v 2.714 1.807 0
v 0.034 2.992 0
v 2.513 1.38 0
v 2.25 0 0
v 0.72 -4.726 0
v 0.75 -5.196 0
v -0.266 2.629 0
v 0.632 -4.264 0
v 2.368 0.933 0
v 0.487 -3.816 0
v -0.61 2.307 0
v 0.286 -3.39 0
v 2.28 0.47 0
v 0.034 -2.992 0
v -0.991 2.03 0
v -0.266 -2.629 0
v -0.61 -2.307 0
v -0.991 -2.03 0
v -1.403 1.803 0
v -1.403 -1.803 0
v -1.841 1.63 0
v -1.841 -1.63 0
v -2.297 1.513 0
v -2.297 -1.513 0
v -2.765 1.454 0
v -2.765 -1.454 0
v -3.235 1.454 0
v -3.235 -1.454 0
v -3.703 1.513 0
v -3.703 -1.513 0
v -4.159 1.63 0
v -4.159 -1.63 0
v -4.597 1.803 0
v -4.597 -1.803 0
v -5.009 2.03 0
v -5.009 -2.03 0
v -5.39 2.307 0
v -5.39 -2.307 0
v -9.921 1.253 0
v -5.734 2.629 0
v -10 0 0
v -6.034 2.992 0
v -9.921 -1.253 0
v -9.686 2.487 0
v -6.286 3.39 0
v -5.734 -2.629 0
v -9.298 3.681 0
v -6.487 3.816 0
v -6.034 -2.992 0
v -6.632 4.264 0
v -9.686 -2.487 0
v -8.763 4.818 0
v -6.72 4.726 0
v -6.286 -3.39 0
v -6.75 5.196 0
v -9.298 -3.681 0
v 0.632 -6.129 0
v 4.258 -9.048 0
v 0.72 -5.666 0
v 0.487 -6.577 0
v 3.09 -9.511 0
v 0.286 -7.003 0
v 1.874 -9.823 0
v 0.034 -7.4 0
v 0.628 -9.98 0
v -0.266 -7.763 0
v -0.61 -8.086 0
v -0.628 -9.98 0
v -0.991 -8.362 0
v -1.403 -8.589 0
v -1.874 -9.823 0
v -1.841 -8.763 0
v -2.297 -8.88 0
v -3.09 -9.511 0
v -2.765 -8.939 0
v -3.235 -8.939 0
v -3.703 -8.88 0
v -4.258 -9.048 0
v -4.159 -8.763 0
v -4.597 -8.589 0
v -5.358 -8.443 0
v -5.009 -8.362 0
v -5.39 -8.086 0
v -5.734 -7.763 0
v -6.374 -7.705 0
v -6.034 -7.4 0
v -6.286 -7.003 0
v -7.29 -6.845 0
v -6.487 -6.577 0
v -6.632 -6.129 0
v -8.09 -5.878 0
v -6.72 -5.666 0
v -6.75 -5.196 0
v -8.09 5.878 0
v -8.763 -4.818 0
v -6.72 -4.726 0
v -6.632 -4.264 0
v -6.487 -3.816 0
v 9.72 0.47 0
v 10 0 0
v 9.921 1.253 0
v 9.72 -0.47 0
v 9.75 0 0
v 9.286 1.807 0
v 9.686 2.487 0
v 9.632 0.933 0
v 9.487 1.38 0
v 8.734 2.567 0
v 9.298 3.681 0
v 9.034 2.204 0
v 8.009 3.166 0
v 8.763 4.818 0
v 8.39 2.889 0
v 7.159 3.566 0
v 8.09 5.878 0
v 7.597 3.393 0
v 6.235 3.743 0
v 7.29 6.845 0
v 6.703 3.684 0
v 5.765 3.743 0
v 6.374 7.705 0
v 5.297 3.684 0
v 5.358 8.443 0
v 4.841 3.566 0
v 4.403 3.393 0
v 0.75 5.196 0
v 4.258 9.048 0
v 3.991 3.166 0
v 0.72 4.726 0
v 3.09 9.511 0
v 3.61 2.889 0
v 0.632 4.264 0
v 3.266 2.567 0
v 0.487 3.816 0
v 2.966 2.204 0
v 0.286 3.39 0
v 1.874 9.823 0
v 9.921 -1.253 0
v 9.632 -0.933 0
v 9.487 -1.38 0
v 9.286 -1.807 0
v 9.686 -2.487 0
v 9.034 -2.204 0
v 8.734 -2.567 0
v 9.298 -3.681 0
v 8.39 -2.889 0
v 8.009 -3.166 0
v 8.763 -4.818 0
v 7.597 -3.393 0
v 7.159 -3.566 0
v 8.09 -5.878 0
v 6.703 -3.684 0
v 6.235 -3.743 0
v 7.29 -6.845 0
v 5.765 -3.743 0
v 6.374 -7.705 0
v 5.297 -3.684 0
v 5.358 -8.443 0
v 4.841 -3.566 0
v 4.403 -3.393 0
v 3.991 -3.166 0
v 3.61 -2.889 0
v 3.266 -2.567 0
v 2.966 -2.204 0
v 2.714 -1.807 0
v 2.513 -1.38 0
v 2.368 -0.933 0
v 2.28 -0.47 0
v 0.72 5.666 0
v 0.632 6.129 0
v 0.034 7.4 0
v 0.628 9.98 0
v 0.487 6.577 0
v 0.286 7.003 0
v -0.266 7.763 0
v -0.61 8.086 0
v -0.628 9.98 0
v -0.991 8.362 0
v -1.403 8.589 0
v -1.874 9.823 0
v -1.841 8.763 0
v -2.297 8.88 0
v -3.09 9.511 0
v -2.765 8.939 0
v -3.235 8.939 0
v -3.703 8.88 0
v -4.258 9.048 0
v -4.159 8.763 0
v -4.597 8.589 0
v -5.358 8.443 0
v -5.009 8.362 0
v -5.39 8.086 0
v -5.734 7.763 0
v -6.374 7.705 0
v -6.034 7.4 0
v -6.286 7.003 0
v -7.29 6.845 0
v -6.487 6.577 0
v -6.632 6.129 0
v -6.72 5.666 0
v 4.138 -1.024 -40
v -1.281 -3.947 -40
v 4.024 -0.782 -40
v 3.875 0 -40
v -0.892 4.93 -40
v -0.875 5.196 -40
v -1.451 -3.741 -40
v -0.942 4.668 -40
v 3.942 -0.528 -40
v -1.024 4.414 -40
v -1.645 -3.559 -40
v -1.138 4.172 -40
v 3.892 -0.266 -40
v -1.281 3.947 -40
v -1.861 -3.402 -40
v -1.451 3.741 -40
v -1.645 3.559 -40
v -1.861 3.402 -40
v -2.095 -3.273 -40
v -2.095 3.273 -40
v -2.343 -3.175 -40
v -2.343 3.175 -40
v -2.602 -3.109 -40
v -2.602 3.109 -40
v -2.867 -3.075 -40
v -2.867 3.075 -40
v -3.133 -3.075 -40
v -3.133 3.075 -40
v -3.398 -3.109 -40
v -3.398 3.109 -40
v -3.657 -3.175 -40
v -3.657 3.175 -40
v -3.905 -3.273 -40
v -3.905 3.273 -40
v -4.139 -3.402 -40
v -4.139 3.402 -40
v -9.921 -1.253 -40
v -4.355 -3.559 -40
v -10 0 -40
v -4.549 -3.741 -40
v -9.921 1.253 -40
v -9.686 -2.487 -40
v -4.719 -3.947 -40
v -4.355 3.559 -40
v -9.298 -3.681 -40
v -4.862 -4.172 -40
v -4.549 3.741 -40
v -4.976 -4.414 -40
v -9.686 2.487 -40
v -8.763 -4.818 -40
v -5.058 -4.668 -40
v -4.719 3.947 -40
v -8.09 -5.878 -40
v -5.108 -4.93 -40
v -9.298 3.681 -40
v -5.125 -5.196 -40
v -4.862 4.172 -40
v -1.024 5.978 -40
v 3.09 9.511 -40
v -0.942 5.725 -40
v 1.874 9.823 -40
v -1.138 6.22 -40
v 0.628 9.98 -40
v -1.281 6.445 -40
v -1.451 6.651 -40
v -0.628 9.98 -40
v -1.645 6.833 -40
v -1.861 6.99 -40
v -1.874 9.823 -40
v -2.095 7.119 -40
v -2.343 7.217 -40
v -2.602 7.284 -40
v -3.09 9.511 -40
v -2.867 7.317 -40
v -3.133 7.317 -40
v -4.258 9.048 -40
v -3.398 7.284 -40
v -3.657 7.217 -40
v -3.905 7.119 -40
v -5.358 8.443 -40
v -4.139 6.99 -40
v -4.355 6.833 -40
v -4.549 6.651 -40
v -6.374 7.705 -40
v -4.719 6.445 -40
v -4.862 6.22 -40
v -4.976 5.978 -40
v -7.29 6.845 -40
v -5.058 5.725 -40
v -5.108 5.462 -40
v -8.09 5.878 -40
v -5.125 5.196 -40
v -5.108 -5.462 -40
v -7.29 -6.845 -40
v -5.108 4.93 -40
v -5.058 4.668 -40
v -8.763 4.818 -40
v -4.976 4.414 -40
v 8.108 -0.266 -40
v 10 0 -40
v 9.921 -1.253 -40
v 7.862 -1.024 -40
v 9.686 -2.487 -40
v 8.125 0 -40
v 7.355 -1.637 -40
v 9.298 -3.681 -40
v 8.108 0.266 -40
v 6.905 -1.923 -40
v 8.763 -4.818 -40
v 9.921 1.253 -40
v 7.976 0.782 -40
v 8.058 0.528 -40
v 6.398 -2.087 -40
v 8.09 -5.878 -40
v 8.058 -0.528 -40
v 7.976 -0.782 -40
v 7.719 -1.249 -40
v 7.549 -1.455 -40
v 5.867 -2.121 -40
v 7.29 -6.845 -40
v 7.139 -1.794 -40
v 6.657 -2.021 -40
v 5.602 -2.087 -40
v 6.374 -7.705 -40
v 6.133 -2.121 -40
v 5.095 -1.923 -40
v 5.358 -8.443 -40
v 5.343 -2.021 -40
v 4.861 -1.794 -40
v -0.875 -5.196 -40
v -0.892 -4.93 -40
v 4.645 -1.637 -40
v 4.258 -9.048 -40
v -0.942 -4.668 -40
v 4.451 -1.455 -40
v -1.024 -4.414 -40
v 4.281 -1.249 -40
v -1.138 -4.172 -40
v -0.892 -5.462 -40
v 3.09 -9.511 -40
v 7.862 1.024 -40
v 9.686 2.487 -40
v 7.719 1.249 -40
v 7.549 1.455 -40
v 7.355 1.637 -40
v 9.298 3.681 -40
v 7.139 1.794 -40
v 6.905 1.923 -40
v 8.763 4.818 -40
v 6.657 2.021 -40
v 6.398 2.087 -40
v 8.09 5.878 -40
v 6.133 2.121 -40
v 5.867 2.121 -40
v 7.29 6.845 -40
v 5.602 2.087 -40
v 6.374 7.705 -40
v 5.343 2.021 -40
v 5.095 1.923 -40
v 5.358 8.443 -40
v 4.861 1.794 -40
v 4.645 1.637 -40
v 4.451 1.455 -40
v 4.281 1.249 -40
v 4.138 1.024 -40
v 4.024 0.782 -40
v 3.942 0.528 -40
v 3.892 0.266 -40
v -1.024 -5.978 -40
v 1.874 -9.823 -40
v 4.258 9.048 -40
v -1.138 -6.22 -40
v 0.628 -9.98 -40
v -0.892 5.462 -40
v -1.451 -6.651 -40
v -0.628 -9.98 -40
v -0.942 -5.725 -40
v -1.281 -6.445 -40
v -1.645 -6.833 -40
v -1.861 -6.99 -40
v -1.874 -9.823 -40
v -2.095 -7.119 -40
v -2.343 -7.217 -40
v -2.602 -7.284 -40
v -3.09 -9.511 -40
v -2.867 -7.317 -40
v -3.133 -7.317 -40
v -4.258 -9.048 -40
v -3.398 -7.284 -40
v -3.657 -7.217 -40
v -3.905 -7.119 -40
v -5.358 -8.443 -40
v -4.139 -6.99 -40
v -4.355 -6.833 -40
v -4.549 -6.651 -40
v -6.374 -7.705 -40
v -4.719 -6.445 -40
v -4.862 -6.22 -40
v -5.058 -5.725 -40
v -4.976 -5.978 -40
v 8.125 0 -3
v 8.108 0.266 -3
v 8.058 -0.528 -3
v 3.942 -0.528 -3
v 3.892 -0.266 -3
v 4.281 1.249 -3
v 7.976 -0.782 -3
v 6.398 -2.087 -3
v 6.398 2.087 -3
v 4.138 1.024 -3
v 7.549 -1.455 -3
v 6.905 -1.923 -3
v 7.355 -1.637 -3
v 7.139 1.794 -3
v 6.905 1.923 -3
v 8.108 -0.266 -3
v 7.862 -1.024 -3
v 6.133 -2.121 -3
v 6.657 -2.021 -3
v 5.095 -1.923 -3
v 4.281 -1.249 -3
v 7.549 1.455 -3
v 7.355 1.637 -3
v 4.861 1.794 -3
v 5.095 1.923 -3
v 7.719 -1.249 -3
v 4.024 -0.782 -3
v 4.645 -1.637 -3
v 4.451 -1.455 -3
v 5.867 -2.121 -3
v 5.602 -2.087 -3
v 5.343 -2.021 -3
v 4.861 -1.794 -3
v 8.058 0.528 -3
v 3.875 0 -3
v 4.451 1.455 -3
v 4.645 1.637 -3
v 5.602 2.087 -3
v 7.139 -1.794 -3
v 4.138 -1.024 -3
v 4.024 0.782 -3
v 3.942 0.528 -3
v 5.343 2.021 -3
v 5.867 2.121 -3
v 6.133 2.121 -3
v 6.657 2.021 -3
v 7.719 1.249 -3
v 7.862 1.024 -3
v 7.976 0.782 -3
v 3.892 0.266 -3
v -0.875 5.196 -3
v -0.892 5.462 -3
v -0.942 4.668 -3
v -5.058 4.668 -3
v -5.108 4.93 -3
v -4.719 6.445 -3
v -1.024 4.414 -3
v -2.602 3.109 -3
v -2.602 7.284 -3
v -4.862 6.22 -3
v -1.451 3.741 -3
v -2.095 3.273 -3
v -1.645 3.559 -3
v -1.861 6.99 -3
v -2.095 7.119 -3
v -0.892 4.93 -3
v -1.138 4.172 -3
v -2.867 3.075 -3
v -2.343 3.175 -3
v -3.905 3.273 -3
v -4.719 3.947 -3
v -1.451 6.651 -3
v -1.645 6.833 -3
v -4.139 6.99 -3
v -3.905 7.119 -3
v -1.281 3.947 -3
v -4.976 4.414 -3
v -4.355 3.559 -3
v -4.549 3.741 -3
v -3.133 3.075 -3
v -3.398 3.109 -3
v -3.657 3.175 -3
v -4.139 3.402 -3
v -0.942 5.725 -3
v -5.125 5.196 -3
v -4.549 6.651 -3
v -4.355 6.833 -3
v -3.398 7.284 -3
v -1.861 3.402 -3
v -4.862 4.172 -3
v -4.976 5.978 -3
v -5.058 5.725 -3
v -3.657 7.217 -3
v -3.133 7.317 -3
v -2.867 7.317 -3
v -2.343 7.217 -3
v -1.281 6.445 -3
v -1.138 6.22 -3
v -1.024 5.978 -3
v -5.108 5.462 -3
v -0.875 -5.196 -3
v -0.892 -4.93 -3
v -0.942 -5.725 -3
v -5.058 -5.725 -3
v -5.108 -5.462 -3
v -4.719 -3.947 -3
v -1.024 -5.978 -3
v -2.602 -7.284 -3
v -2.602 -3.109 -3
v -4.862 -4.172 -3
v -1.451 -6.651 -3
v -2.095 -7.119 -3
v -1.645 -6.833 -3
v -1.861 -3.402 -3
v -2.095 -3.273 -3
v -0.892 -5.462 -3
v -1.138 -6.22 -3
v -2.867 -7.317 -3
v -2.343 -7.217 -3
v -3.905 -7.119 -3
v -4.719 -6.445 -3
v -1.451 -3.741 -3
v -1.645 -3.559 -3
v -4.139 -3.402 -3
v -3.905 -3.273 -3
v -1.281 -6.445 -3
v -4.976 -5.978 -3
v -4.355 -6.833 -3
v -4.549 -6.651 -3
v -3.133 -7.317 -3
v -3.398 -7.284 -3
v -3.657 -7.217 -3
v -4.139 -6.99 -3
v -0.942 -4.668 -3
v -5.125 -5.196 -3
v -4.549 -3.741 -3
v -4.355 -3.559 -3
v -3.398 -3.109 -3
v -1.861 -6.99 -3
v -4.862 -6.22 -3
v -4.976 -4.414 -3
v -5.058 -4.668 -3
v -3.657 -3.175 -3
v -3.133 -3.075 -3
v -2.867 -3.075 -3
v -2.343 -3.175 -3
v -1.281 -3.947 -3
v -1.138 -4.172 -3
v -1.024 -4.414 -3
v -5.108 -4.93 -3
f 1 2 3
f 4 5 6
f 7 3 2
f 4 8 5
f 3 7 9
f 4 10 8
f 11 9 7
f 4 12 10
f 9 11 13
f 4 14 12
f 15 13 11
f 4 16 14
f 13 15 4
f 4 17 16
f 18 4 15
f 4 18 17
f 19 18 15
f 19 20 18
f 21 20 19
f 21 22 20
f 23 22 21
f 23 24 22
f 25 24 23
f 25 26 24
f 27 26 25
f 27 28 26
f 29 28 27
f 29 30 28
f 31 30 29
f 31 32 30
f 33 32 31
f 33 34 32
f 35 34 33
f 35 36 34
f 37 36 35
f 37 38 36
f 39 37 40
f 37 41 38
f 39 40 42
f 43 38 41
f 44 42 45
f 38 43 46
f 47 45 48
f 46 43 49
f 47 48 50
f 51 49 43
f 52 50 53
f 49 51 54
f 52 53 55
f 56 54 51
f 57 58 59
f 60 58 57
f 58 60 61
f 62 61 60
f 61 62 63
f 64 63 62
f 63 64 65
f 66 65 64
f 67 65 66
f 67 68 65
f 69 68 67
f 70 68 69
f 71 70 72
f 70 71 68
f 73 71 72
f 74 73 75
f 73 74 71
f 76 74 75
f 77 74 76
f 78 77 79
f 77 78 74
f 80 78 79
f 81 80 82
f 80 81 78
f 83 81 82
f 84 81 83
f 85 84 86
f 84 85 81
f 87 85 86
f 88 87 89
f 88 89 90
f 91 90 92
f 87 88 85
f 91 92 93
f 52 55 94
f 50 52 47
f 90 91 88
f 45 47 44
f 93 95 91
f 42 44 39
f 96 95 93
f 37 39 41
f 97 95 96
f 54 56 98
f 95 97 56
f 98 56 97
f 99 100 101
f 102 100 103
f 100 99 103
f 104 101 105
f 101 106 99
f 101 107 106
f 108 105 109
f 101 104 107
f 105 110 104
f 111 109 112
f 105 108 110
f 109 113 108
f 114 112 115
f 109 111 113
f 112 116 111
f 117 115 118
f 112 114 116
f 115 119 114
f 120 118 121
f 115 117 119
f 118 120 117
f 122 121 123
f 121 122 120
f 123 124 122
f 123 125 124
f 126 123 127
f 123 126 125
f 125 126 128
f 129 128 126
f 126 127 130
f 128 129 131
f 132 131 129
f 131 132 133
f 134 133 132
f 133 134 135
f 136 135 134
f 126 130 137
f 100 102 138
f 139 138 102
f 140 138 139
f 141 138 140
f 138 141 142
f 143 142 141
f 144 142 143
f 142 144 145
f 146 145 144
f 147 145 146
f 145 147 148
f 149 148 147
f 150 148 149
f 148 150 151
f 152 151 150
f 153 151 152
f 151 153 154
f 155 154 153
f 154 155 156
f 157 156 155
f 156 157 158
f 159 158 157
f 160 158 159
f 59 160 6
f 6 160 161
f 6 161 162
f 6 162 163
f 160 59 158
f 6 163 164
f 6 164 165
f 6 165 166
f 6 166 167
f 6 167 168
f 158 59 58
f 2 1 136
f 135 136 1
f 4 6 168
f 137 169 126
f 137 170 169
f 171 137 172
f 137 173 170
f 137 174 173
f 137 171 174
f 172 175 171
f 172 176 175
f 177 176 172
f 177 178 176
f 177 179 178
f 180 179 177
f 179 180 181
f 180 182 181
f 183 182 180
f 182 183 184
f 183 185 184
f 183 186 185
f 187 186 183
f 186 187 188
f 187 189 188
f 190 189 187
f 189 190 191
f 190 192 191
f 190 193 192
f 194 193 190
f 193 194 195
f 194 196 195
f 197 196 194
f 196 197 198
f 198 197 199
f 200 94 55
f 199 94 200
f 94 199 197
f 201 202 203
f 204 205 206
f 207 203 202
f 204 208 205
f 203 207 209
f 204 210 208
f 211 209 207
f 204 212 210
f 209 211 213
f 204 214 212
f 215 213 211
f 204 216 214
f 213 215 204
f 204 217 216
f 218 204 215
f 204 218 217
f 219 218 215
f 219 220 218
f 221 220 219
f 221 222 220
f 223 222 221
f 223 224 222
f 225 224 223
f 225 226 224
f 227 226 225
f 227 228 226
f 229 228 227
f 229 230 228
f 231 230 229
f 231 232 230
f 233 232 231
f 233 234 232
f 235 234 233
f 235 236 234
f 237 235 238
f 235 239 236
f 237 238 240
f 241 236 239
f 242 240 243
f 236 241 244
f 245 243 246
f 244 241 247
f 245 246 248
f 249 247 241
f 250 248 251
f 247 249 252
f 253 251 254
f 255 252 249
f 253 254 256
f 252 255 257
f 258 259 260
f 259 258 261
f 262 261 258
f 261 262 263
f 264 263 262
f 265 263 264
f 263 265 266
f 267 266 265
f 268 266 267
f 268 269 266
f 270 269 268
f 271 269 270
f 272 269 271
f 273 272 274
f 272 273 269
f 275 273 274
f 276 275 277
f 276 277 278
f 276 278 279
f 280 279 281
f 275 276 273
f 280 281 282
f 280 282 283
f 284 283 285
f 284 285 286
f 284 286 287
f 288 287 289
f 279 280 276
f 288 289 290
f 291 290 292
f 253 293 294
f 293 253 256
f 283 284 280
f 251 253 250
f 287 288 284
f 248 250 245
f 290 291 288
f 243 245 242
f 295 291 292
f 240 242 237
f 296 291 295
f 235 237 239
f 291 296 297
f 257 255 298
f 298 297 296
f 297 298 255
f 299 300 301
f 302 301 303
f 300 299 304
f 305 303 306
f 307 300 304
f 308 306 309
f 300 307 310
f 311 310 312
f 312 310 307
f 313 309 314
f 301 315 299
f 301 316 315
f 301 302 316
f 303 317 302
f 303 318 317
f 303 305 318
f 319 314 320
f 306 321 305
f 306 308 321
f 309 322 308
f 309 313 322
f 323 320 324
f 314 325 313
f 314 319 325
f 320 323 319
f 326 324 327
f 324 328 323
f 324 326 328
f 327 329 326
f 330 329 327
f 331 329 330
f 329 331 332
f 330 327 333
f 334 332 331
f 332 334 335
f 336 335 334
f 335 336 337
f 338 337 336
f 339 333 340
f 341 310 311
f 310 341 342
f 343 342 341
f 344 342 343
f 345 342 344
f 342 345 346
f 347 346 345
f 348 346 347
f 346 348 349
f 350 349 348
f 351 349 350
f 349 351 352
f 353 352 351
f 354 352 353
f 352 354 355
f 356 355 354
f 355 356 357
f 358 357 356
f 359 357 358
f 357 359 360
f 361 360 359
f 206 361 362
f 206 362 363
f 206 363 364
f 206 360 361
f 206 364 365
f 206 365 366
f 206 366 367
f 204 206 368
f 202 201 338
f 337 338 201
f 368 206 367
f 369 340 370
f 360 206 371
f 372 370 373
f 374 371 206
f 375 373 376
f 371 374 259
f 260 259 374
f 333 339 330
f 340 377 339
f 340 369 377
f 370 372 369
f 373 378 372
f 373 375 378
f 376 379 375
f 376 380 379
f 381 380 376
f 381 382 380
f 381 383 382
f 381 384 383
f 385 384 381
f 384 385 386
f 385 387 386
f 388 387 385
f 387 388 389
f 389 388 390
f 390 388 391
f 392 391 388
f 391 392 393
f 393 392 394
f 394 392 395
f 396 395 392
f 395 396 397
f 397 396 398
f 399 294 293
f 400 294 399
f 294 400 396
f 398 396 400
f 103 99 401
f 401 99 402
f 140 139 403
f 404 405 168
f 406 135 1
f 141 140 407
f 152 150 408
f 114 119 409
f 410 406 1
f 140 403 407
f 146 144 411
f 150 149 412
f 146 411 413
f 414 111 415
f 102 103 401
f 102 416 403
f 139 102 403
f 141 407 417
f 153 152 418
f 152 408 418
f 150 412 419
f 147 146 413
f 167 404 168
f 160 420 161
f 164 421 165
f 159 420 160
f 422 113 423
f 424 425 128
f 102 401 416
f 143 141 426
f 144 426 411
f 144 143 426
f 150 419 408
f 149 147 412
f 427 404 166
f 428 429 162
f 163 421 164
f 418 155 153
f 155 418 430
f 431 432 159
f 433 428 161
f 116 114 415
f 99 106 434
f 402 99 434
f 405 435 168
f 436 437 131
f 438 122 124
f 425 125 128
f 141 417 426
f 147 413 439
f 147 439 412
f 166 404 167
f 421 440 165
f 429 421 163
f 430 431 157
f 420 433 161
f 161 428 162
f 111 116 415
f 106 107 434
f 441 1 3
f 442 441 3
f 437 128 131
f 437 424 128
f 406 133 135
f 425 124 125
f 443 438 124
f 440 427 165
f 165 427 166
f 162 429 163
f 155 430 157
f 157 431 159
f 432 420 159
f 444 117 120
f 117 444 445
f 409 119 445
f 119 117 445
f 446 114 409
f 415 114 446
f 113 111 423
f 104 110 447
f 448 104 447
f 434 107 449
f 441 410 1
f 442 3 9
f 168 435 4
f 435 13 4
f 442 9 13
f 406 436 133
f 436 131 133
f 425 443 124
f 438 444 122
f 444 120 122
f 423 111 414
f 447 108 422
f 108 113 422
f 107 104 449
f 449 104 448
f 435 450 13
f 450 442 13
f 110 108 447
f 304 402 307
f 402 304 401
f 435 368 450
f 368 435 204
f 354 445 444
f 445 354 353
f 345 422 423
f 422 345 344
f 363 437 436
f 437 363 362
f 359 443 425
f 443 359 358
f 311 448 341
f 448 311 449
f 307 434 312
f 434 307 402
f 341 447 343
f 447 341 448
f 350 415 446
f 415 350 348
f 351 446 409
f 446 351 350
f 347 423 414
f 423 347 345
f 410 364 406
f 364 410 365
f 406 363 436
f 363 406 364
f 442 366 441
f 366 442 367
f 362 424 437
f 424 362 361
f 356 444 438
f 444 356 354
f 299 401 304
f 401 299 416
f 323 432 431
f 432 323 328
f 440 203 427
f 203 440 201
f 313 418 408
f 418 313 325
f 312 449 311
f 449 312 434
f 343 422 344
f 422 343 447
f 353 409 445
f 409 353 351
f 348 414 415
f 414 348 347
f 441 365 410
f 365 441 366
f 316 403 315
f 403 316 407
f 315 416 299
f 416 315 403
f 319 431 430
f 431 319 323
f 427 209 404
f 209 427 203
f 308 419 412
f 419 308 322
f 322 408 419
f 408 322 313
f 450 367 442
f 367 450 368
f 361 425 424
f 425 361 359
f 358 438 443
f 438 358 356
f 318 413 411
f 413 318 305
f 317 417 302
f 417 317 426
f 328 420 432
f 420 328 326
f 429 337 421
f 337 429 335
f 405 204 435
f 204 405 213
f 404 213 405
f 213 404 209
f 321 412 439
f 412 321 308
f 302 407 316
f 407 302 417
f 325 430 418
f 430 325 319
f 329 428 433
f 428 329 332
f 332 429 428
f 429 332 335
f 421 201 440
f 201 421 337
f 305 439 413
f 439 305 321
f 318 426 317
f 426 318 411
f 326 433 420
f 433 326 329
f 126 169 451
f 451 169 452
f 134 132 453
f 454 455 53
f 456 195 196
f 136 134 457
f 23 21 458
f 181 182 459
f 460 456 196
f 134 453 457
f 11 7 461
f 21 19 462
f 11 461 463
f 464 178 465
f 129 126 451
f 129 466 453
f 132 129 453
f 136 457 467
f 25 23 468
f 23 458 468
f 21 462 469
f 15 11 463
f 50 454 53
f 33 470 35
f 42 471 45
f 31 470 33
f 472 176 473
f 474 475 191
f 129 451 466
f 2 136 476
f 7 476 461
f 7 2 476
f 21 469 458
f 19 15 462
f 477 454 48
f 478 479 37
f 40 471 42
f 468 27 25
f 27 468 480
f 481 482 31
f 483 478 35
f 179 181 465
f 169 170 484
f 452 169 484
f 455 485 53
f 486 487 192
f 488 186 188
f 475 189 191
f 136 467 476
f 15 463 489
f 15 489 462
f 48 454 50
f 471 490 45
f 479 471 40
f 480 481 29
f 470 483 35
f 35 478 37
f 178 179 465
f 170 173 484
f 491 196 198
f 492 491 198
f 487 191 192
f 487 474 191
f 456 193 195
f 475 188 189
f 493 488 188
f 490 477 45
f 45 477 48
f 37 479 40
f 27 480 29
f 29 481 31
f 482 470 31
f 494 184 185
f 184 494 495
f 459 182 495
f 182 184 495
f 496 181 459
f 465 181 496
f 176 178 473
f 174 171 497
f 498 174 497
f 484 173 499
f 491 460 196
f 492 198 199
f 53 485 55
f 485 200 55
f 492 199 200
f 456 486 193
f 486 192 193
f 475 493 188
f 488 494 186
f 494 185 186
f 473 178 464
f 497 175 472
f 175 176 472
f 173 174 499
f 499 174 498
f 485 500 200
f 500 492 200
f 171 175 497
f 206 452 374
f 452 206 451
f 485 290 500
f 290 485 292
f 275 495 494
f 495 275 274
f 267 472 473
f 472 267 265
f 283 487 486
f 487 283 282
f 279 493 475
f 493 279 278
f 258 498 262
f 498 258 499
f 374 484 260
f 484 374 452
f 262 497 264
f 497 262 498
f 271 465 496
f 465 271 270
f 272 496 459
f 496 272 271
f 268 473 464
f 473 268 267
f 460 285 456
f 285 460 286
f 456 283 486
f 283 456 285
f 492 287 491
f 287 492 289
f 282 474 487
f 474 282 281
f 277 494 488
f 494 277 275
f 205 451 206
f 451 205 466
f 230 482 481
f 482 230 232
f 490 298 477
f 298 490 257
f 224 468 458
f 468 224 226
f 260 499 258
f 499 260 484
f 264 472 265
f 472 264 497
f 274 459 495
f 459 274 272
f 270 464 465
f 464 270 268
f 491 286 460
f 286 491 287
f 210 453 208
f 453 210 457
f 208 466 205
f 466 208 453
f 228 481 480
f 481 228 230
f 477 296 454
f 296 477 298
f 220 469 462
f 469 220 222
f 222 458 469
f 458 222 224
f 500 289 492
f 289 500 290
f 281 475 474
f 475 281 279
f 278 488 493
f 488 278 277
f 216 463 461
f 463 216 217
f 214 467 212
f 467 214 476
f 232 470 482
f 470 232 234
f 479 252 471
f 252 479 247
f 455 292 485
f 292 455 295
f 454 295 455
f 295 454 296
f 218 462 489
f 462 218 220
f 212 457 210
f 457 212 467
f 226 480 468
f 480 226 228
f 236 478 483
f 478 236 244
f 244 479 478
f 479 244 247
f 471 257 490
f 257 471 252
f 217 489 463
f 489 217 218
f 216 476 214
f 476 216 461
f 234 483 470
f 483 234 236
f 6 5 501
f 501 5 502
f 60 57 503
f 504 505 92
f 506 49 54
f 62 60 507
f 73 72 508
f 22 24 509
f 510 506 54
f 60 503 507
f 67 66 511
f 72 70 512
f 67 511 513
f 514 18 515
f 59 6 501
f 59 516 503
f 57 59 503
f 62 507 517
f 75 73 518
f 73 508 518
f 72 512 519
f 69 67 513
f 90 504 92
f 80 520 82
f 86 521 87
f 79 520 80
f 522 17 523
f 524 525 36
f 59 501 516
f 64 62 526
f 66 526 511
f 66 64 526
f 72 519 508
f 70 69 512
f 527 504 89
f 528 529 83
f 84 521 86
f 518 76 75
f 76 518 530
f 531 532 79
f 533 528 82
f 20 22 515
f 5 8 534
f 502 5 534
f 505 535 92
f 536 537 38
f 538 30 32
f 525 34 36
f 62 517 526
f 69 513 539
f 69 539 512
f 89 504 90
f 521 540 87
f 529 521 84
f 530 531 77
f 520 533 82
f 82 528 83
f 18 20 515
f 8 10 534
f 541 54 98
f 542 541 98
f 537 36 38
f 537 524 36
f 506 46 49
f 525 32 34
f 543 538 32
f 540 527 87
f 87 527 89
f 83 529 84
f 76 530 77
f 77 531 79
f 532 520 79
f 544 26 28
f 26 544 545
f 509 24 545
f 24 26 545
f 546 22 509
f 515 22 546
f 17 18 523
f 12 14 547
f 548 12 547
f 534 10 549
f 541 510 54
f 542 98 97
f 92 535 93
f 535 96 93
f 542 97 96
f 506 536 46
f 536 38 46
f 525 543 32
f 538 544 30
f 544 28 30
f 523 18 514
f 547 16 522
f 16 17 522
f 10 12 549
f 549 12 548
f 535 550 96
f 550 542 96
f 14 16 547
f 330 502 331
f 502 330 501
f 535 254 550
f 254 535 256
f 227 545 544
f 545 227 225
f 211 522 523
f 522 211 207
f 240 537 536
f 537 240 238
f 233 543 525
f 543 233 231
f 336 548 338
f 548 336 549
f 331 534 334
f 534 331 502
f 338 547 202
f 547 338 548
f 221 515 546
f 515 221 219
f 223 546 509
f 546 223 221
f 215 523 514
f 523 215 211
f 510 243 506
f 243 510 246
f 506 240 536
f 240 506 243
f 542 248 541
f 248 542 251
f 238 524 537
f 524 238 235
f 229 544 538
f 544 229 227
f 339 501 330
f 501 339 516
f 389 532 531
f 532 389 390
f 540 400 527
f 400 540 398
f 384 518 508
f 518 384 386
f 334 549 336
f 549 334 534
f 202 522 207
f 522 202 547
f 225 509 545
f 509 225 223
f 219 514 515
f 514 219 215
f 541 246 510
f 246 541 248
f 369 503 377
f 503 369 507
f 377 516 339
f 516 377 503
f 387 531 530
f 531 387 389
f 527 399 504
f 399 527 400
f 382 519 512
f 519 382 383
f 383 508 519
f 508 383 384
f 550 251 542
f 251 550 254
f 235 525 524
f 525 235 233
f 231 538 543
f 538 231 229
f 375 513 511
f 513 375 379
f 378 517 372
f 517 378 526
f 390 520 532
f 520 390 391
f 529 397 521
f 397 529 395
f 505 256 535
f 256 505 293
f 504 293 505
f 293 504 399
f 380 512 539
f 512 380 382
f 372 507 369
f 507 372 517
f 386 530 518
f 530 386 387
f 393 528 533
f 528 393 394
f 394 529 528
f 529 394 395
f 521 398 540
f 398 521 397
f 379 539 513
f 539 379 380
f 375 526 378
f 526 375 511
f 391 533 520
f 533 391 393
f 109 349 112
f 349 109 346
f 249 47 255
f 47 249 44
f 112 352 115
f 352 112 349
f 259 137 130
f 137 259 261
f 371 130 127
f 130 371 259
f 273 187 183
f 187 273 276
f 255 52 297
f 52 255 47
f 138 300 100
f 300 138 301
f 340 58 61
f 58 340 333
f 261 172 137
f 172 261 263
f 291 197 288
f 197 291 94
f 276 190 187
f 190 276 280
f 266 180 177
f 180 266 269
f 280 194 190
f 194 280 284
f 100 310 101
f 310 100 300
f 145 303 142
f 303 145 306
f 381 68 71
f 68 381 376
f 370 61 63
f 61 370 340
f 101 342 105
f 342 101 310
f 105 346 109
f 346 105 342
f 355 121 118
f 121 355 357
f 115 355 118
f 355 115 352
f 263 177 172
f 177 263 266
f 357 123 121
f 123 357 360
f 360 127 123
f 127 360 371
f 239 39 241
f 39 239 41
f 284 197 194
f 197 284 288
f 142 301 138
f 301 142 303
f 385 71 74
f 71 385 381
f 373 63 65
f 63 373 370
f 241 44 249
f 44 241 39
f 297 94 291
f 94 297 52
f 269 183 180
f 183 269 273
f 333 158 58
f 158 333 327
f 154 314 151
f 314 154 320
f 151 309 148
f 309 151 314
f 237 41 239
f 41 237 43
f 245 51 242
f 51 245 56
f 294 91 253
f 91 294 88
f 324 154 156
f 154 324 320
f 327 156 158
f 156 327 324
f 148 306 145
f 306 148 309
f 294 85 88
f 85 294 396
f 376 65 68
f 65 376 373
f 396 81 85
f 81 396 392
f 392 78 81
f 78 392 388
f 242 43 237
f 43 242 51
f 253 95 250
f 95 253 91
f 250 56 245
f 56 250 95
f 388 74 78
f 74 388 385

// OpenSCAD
$fn = 50;


difference() {
	union() {
		translate(v = [0, 0, -40.0000000000]) {
			cylinder(h = 40, r = 10.0000000000);
		}
	}
	union() {
		translate(v = [6.0000000000, 0.0000000000, 0]) {
			rotate(a = [0, 0, 0]) {
				difference() {
					union() {
						#translate(v = [0, 0, -40.0000000000]) {
							cylinder(h = 40, r = 2.0000000000);
						}
						#translate(v = [0, 0, -3]) {
							cylinder(h = 3, r = 10.0000000000, r1 = 2.1250000000, r2 = 3.7500000000);
						}
						#translate(v = [0, 0, -40.0000000000]) {
							cylinder(h = 40, r = 2.1250000000);
						}
						#translate(v = [0, 0, -40.0000000000]) {
							cylinder(h = 40, r = 2.0000000000);
						}
					}
					union();
				}
			}
		}
		translate(v = [-3.0000000000, 5.1961524227, 0]) {
			rotate(a = [0, 0, 0]) {
				difference() {
					union() {
						#translate(v = [0, 0, -40.0000000000]) {
							cylinder(h = 40, r = 2.0000000000);
						}
						#translate(v = [0, 0, -3]) {
							cylinder(h = 3, r = 10.0000000000, r1 = 2.1250000000, r2 = 3.7500000000);
						}
						#translate(v = [0, 0, -40.0000000000]) {
							cylinder(h = 40, r = 2.1250000000);
						}
						#translate(v = [0, 0, -40.0000000000]) {
							cylinder(h = 40, r = 2.0000000000);
						}
					}
					union();
				}
			}
		}
		translate(v = [-3.0000000000, -5.1961524227, 0]) {
			rotate(a = [0, 0, 0]) {
				difference() {
					union() {
						#translate(v = [0, 0, -40.0000000000]) {
							cylinder(h = 40, r = 2.0000000000);
						}
						#translate(v = [0, 0, -3]) {
							cylinder(h = 3, r = 10.0000000000, r1 = 2.1250000000, r2 = 3.7500000000);
						}
						#translate(v = [0, 0, -40.0000000000]) {
							cylinder(h = 40, r = 2.1250000000);
						}
						#translate(v = [0, 0, -40.0000000000]) {
							cylinder(h = 40, r = 2.0000000000);
						}
					}
					union();
				}
			}
		}
	}
}
